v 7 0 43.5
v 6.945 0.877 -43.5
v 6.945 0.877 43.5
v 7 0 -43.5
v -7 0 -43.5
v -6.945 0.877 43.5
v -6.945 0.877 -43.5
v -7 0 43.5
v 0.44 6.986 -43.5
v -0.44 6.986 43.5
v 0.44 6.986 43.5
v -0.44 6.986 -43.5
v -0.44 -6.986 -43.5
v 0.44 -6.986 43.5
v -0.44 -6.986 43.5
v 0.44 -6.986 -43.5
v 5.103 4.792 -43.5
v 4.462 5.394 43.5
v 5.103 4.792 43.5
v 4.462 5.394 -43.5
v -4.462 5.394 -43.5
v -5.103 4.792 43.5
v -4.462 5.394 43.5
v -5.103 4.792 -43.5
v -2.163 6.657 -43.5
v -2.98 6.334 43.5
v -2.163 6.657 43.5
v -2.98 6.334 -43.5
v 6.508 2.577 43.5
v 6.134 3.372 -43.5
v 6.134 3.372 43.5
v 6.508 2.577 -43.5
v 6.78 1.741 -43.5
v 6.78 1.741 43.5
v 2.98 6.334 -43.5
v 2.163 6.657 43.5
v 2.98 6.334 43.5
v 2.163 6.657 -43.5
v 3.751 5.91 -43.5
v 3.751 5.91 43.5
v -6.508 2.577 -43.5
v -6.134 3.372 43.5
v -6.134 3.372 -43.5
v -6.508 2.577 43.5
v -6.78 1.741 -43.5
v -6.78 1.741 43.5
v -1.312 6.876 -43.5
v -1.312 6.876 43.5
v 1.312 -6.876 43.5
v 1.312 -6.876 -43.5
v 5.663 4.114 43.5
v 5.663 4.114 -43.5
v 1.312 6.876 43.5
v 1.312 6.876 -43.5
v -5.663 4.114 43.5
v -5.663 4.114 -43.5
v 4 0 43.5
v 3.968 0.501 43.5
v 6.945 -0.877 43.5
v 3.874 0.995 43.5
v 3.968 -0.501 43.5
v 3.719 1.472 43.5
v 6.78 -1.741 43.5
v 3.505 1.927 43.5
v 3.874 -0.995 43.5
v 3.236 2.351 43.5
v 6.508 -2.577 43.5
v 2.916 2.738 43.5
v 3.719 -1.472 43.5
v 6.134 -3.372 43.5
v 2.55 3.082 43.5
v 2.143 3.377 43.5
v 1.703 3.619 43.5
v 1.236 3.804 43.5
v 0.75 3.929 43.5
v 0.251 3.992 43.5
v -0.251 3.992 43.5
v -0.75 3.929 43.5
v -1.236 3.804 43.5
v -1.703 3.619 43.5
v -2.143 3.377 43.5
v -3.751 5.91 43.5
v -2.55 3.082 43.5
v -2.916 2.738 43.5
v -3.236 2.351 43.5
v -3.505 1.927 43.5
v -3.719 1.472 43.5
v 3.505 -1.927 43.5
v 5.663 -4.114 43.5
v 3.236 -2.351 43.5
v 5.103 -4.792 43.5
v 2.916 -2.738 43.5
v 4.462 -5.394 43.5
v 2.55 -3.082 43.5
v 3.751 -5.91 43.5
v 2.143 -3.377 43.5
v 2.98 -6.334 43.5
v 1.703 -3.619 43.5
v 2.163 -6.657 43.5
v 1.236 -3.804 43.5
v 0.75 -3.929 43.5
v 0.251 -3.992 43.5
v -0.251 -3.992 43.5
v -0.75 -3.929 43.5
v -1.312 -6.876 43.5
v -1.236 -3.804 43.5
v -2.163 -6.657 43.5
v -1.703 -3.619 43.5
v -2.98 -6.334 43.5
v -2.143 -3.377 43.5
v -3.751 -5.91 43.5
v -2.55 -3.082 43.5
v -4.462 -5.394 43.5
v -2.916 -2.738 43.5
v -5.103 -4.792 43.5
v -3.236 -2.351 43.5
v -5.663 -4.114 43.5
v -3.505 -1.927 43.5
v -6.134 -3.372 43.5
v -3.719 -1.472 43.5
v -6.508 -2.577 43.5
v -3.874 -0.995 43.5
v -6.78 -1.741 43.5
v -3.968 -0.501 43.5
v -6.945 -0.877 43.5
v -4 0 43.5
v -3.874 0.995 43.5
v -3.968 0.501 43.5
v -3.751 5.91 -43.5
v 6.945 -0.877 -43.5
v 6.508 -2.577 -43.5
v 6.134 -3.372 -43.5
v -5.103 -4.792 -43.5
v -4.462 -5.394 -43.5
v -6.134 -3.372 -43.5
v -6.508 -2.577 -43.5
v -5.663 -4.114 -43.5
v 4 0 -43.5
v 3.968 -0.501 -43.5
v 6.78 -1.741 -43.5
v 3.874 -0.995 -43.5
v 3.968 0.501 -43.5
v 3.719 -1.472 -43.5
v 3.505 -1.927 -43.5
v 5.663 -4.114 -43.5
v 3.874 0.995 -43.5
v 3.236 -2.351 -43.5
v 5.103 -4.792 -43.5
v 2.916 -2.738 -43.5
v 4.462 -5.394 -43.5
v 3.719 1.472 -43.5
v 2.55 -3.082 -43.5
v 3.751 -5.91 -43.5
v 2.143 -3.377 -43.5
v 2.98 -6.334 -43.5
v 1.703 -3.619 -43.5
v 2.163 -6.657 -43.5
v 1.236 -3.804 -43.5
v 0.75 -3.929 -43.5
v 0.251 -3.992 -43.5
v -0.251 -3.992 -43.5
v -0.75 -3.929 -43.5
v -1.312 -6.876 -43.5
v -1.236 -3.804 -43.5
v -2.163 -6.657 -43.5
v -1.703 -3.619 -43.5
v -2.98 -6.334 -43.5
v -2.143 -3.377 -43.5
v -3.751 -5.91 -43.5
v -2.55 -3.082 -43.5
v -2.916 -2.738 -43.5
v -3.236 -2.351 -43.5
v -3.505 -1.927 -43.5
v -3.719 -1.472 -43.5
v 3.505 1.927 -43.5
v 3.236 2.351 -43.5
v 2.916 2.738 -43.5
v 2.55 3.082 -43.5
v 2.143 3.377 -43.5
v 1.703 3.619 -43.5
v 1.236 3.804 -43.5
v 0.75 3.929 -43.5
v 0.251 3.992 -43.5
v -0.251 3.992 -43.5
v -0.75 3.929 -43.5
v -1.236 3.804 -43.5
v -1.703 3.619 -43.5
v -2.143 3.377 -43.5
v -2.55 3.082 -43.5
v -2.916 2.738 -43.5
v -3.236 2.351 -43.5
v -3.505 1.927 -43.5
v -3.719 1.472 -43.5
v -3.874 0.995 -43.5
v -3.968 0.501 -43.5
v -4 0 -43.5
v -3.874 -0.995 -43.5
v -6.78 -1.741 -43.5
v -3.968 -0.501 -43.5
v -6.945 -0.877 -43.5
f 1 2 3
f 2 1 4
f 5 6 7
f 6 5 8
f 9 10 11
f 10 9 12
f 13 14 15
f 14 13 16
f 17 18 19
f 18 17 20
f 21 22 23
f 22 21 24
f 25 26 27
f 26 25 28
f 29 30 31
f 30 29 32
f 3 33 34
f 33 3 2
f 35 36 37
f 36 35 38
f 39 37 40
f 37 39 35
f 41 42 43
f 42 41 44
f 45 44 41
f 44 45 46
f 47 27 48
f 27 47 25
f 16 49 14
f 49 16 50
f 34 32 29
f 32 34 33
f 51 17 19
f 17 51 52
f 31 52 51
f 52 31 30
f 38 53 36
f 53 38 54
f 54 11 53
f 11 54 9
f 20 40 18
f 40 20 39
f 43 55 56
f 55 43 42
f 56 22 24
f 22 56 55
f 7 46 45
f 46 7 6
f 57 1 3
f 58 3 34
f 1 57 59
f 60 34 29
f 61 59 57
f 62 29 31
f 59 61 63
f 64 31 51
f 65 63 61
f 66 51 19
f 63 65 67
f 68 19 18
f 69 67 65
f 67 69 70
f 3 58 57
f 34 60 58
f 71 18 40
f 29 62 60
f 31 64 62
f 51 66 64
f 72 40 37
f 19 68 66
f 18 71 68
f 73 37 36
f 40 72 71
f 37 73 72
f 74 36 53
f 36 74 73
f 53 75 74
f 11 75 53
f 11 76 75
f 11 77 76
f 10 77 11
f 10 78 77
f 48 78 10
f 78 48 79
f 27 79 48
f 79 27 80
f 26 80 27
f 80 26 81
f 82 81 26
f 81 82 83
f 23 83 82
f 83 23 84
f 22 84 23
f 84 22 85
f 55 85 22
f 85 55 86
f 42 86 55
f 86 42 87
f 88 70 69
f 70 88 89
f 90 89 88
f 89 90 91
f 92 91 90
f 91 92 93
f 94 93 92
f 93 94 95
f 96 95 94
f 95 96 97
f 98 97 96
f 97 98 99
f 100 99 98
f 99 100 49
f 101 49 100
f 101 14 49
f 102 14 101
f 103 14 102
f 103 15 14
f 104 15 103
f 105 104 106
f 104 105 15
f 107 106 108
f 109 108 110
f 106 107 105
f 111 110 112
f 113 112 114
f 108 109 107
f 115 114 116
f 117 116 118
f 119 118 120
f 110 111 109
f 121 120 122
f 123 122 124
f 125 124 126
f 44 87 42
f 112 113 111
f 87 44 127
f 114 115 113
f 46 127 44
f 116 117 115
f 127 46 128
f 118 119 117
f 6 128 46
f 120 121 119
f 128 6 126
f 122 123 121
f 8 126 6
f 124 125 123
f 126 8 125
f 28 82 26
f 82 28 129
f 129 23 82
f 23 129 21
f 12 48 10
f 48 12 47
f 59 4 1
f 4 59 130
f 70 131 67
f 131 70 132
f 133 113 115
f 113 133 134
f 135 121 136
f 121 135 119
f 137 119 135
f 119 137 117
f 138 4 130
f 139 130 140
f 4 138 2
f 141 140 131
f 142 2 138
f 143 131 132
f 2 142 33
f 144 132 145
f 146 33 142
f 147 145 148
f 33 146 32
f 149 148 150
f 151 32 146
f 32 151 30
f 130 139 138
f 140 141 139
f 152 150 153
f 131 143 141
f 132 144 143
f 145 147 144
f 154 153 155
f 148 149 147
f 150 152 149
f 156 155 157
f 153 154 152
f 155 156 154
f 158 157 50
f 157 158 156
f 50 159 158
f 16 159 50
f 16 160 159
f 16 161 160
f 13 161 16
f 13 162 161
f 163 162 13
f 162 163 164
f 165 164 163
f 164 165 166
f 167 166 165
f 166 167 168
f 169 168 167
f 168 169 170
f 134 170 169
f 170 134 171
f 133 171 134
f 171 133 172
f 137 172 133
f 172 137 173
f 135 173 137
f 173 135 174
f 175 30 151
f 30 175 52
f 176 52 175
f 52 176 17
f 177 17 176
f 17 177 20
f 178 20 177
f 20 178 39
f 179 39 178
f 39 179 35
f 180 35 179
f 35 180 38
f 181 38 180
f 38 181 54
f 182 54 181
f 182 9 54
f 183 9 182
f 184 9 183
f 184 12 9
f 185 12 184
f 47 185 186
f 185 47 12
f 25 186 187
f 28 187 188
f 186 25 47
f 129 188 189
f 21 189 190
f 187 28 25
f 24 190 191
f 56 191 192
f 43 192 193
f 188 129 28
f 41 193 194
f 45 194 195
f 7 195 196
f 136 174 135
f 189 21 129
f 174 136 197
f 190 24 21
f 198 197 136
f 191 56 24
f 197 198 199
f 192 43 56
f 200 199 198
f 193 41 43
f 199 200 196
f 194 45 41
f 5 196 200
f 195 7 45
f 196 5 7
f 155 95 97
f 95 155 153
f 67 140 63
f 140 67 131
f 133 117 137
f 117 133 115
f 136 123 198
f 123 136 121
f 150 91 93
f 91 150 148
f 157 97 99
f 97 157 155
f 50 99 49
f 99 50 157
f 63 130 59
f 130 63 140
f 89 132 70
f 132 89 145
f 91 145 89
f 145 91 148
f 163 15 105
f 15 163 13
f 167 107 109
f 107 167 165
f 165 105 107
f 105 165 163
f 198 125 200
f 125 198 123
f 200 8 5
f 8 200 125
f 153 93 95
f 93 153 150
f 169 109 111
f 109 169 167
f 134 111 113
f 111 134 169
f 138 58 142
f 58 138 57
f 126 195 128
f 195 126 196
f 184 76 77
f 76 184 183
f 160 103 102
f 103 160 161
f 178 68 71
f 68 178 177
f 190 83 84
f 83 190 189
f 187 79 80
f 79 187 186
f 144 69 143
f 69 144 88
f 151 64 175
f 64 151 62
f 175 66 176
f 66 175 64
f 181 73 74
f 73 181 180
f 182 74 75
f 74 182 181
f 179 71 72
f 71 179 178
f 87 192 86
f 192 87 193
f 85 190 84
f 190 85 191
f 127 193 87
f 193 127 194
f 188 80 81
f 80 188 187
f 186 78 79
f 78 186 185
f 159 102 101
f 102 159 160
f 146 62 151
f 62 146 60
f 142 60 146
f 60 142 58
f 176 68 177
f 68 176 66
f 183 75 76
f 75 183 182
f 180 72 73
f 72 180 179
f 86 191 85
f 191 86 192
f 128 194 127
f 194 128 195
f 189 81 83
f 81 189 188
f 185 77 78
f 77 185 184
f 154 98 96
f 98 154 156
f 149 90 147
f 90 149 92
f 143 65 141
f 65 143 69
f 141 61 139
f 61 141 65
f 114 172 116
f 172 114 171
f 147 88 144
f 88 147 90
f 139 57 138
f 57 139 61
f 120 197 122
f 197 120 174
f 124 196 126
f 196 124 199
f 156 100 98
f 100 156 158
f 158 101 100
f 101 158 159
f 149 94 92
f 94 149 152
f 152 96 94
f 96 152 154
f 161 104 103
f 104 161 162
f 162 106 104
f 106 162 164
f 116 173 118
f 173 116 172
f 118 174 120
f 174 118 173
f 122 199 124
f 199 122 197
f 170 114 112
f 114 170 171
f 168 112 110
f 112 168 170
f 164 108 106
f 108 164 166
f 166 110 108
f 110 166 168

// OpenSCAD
$fn = 50;


difference() {
	union() {
		translate(v = [0, 0, -43.5000000000]) {
			cylinder(h = 87, r = 7.0000000000);
		}
	}
	union() {
		translate(v = [0, 0, -100.0000000000]) {
			cylinder(h = 200, r = 4);
		}
	}
}
